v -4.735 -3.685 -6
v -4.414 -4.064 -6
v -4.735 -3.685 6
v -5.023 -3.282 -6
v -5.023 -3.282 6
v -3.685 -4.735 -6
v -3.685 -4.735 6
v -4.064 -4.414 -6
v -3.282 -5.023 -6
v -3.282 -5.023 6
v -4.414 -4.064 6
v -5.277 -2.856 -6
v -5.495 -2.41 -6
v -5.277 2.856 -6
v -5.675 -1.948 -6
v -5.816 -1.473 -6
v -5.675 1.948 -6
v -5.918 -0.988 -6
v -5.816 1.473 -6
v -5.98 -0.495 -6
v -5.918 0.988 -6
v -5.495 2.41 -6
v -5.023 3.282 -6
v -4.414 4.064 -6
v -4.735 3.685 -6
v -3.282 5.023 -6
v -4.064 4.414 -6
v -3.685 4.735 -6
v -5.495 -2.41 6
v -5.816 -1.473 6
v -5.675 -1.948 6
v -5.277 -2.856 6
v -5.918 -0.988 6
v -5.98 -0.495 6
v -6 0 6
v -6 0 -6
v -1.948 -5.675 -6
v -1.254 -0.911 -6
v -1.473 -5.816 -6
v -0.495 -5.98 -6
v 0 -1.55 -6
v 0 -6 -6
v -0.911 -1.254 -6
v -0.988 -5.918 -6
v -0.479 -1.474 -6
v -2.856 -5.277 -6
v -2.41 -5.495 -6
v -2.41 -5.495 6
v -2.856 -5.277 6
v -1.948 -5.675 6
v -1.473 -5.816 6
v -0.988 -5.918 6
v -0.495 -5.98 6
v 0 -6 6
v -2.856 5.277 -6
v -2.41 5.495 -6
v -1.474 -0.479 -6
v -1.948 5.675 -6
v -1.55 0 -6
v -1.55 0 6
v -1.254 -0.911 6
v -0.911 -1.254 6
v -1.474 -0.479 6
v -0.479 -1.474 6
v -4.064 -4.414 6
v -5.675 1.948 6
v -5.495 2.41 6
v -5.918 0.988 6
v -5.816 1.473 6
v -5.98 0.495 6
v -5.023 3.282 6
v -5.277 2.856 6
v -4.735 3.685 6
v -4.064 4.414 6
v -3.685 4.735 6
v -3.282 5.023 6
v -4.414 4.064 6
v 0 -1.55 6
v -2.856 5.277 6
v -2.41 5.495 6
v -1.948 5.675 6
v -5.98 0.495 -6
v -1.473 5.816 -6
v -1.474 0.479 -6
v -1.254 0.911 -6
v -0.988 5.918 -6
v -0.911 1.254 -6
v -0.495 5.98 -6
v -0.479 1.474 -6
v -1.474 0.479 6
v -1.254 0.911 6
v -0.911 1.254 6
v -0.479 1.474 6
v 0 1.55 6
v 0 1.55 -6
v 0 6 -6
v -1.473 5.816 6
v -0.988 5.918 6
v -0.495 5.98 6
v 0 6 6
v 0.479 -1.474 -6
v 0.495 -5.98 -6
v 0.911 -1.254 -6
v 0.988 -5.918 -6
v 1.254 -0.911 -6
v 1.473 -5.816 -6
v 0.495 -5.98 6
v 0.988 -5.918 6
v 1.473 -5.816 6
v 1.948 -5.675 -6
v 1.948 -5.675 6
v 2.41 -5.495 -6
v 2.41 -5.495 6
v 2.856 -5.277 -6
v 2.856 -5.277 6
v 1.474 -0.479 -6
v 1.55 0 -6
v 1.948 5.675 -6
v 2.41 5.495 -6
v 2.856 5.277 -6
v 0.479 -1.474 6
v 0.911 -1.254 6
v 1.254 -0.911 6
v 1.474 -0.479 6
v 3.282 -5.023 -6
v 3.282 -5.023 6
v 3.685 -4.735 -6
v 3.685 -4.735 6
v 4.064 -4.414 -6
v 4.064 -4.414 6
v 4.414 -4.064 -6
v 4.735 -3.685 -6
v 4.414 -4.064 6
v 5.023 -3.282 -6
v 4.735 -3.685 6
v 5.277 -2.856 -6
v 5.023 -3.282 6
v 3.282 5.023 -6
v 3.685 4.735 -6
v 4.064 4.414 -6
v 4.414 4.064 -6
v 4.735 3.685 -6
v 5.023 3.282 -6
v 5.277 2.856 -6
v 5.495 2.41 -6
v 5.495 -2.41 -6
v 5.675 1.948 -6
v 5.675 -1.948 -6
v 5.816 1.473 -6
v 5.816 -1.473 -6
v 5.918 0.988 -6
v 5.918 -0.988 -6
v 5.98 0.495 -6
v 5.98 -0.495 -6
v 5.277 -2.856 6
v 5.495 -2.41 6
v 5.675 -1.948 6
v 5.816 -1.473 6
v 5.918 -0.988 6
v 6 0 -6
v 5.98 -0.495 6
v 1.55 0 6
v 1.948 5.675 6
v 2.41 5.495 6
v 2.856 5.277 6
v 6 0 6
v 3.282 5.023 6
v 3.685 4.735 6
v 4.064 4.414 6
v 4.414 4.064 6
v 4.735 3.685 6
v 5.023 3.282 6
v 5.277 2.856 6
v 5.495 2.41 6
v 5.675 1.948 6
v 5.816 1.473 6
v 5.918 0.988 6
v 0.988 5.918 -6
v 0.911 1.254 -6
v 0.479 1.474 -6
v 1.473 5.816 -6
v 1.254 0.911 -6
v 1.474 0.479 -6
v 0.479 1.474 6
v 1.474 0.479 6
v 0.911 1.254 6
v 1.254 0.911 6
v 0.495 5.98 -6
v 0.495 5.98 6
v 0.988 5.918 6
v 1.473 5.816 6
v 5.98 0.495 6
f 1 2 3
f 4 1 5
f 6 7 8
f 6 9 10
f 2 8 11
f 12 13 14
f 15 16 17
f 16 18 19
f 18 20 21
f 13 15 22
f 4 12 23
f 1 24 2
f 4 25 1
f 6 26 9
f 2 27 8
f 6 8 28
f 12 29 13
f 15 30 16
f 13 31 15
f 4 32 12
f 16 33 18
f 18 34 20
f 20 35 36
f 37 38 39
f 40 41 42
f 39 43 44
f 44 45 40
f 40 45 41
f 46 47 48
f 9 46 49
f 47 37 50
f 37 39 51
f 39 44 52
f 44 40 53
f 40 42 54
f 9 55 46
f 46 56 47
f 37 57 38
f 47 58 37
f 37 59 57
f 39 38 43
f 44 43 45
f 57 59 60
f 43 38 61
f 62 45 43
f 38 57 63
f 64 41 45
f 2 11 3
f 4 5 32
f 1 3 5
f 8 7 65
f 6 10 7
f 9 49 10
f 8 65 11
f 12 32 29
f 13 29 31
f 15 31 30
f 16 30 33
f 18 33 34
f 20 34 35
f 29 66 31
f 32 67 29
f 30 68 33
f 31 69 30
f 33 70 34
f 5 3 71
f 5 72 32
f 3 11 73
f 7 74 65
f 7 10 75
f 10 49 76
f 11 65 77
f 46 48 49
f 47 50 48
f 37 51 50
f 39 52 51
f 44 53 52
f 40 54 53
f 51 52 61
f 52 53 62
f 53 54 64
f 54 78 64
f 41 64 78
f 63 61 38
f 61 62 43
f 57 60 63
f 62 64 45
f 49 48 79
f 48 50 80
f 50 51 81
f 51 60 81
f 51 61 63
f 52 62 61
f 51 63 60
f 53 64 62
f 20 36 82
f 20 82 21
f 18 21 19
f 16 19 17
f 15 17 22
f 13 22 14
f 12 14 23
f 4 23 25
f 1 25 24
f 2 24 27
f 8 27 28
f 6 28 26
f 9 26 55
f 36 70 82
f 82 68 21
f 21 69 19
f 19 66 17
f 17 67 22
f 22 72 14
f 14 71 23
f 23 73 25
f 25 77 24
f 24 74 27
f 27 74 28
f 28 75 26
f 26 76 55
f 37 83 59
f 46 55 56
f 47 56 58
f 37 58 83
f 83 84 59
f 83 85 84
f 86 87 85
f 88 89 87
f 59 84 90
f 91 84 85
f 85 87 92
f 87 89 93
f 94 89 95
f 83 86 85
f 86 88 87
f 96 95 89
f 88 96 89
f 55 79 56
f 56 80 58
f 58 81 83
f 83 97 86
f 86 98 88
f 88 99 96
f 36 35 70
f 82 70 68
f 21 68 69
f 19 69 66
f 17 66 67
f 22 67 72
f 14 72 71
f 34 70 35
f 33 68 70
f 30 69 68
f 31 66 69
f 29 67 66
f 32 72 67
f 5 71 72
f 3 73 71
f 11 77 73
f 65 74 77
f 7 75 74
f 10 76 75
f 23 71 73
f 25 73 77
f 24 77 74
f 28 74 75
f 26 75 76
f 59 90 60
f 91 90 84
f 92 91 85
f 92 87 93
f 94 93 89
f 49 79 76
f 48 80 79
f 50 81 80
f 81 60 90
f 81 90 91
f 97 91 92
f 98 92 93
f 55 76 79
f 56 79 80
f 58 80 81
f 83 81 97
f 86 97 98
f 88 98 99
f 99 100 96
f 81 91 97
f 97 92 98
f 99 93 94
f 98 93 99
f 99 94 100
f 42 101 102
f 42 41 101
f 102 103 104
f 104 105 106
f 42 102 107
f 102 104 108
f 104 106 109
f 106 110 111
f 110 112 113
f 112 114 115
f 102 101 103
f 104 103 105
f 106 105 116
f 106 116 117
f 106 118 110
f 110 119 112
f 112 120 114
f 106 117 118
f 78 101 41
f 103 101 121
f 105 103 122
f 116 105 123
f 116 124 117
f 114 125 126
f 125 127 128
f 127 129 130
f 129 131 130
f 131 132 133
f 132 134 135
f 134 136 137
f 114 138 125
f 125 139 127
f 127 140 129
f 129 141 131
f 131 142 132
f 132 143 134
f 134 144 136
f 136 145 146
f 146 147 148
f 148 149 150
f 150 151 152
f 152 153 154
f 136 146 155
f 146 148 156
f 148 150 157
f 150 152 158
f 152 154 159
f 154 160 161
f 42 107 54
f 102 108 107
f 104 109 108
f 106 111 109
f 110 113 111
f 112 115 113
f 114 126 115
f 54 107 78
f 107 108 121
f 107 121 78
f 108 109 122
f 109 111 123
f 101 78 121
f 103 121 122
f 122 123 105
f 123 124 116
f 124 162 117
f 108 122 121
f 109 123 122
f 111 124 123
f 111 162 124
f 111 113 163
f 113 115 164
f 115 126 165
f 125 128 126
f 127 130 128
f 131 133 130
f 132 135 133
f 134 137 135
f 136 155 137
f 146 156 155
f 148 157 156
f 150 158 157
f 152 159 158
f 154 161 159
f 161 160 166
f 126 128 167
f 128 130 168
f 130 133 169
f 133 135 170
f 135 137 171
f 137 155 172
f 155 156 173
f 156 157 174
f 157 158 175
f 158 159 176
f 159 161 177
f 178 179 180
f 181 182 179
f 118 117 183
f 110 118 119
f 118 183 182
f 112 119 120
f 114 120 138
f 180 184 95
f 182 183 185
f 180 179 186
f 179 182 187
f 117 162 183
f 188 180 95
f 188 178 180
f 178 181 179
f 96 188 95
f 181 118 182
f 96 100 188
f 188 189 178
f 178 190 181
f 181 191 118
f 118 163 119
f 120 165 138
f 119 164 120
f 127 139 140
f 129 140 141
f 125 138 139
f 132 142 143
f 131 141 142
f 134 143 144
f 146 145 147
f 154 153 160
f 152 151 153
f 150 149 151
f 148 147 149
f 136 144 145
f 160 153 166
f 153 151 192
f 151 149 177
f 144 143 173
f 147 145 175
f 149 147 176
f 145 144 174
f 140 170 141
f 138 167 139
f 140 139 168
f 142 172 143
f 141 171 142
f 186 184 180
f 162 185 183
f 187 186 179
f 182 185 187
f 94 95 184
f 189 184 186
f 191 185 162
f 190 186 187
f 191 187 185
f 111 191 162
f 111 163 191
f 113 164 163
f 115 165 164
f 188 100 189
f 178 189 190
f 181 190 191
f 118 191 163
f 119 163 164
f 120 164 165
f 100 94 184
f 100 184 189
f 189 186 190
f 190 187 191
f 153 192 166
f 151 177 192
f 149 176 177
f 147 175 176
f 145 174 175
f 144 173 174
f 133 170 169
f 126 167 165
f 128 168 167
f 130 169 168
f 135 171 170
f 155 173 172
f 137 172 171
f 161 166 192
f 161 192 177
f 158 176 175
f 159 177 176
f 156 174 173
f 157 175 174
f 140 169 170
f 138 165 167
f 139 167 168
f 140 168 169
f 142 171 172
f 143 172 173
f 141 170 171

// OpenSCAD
// file: ../lib/lib.scad
// Shared helpers. Include AFTER params.scad (needs TOL, M3_* etc.).
$fa = 4; $fs = 0.5;

module rrect(size, r) {            // 2D rounded rectangle, centred
    r2 = min(r, min(size[0], size[1]) / 2 - 0.001);
    offset(r = r2) square([size[0] - 2 * r2, size[1] - 2 * r2], center = true);
}
module rbox(size, r, center_xy = true) {   // box with rounded vertical edges
    translate(center_xy ? [0, 0, 0] : [size[0] / 2, size[1] / 2, 0])
        linear_extrude(size[2]) rrect([size[0], size[1]], r);
}
module rbox_at(x0, x1, y0, y1, z0, z1, r = 0.01) {
    translate([(x0 + x1) / 2, (y0 + y1) / 2, z0]) rbox([x1 - x0, y1 - y0, z1 - z0], r);
}
module box_at(x0, x1, y0, y1, z0, z1) { translate([x0, y0, z0]) cube([x1 - x0, y1 - y0, z1 - z0]); }

module ring(ro, ri, h) { difference() { cylinder(r = ro, h = h); translate([0, 0, -1]) cylinder(r = ri, h = h + 2); } }
module ring_sector(ro, ri, h, a0, a1) {
    intersection() {
        ring(ro, ri, h);
        linear_extrude(h) polygon(concat([[0, 0]], [for (a = [a0 : (a1 - a0) / 24 : a1]) 2 * ro * [cos(a), sin(a)]]));
    }
}
// teardrop hole along an axis lying horizontal (axis = Y after rotation), printable w/o support
module teardrop2d(d) { union() { circle(d = d); rotate(45) square(d / 2); } }
// vertical heat-set insert hole, opening at z=0 going +z (depth l)
module insert_hole(l = M3_INSERT_L) { translate([0, 0, -EPS]) cylinder(d = M3_INSERT_D, h = l + EPS); }
module m3_clear(l) { translate([0, 0, -EPS]) cylinder(d = M3_CLEAR, h = l + 2 * EPS); }
module m3_csk(l) {  // countersunk clearance from z=0 upward, head at z=0 side
    translate([0, 0, -EPS]) { cylinder(d = M3_CLEAR, h = l + 2 * EPS); cylinder(d1 = 6.4, d2 = M3_CLEAR, h = 1.7); }
}
module card2d() { rrect([CARD_L, CARD_W], CARD_R); }
module card_at(cy, z) { translate([0, cy, z]) linear_extrude(CARD_T) card2d(); }

// ---- gears ----
function _inv(a) = tan(a) - a * PI_ / 180;           // involute function, a in deg
function _invpt(rb, r, ang0, s) = let(al = acos(rb / r), th = ang0 - s * (_inv(al) * 180 / PI_)) [r * cos(th), r * sin(th)];
module involute_gear2d(m, z, pa = 20, clearance = 0.05) {
    rp = m * z / 2; rb = rp * cos(pa); ra = rp + m - clearance; rf = rp - 1.25 * m;
    half = 90 / z + _inv(pa) * 180 / PI_;            // tooth half-angle at base (deg)
    n = 8;
    rs = [for (i = [0 : n]) max(rb, rf) + (ra - max(rb, rf)) * i / n];
    union() {
        circle(r = rf, $fn = z * 4);
        for (k = [0 : z - 1]) rotate(k * 360 / z) polygon(concat(
            [[rf * cos(-half), rf * sin(-half)]],
            [for (r = rs) let(p = _invpt(rb, r, half, 1)) [p[0], -p[1]]],
            [for (i = [n : -1 : 0]) _invpt(rb, rs[i], half, 1)],
            [[rf * cos(half), rf * sin(half)]]));
    }
}
// straight gear rack (2D in XY: teeth along +x, pointing -y, pitch line at y=0)
module gear_rack2d(m, len, back = 3) {
    p = PI_ * m; ad = m; de = 1.25 * m; t = tan(20);
    n = ceil(len / p) + 1;
    intersection() {
        union() {
            translate([0, de]) square([len, back]);
            for (i = [0 : n]) translate([i * p - p / 4, 0]) polygon([
                [-(p / 4 + de * t), de + 0.01], [p / 4 + de * t + 0.01, de + 0.01],
                [p / 4 - ad * t, -ad], [-(p / 4 - ad * t), -ad] ]);
        }
        translate([0, -ad - 1]) square([len, ad + de + back + 2]);
    }
}
// GT2 belt-tooth profile ring (teeth outward), 2D
module gt2_ring2d(n, r_land, ri) {
    union() {
        difference() { circle(r = r_land + 0.01, $fn = n * 2); circle(r = ri, $fn = n * 2); }
        for (k = [0 : n - 1]) rotate(k * 360 / n)
            translate([r_land, 0]) hull() { translate([-0.2, 0]) square([0.2, 1.0], center = true); translate([0.25, 0]) circle(r = 0.5, $fn = 12); }
    }
}
// main file
// Vendor model: Rubber idler roller 12x12 mm on 3 mm axle (launcher pinch idler). Local: axis Z, centred.
include <../params.scad>
include <../lib/lib.scad>
module vendor_idler_roller() color([0.2,0.2,0.22]) difference() { translate([0, 0, -IDLER_W / 2]) cylinder(d = IDLER_D, h = IDLER_W); cylinder(d = 3.1, h = 20, center = true); }

vendor_idler_roller();
